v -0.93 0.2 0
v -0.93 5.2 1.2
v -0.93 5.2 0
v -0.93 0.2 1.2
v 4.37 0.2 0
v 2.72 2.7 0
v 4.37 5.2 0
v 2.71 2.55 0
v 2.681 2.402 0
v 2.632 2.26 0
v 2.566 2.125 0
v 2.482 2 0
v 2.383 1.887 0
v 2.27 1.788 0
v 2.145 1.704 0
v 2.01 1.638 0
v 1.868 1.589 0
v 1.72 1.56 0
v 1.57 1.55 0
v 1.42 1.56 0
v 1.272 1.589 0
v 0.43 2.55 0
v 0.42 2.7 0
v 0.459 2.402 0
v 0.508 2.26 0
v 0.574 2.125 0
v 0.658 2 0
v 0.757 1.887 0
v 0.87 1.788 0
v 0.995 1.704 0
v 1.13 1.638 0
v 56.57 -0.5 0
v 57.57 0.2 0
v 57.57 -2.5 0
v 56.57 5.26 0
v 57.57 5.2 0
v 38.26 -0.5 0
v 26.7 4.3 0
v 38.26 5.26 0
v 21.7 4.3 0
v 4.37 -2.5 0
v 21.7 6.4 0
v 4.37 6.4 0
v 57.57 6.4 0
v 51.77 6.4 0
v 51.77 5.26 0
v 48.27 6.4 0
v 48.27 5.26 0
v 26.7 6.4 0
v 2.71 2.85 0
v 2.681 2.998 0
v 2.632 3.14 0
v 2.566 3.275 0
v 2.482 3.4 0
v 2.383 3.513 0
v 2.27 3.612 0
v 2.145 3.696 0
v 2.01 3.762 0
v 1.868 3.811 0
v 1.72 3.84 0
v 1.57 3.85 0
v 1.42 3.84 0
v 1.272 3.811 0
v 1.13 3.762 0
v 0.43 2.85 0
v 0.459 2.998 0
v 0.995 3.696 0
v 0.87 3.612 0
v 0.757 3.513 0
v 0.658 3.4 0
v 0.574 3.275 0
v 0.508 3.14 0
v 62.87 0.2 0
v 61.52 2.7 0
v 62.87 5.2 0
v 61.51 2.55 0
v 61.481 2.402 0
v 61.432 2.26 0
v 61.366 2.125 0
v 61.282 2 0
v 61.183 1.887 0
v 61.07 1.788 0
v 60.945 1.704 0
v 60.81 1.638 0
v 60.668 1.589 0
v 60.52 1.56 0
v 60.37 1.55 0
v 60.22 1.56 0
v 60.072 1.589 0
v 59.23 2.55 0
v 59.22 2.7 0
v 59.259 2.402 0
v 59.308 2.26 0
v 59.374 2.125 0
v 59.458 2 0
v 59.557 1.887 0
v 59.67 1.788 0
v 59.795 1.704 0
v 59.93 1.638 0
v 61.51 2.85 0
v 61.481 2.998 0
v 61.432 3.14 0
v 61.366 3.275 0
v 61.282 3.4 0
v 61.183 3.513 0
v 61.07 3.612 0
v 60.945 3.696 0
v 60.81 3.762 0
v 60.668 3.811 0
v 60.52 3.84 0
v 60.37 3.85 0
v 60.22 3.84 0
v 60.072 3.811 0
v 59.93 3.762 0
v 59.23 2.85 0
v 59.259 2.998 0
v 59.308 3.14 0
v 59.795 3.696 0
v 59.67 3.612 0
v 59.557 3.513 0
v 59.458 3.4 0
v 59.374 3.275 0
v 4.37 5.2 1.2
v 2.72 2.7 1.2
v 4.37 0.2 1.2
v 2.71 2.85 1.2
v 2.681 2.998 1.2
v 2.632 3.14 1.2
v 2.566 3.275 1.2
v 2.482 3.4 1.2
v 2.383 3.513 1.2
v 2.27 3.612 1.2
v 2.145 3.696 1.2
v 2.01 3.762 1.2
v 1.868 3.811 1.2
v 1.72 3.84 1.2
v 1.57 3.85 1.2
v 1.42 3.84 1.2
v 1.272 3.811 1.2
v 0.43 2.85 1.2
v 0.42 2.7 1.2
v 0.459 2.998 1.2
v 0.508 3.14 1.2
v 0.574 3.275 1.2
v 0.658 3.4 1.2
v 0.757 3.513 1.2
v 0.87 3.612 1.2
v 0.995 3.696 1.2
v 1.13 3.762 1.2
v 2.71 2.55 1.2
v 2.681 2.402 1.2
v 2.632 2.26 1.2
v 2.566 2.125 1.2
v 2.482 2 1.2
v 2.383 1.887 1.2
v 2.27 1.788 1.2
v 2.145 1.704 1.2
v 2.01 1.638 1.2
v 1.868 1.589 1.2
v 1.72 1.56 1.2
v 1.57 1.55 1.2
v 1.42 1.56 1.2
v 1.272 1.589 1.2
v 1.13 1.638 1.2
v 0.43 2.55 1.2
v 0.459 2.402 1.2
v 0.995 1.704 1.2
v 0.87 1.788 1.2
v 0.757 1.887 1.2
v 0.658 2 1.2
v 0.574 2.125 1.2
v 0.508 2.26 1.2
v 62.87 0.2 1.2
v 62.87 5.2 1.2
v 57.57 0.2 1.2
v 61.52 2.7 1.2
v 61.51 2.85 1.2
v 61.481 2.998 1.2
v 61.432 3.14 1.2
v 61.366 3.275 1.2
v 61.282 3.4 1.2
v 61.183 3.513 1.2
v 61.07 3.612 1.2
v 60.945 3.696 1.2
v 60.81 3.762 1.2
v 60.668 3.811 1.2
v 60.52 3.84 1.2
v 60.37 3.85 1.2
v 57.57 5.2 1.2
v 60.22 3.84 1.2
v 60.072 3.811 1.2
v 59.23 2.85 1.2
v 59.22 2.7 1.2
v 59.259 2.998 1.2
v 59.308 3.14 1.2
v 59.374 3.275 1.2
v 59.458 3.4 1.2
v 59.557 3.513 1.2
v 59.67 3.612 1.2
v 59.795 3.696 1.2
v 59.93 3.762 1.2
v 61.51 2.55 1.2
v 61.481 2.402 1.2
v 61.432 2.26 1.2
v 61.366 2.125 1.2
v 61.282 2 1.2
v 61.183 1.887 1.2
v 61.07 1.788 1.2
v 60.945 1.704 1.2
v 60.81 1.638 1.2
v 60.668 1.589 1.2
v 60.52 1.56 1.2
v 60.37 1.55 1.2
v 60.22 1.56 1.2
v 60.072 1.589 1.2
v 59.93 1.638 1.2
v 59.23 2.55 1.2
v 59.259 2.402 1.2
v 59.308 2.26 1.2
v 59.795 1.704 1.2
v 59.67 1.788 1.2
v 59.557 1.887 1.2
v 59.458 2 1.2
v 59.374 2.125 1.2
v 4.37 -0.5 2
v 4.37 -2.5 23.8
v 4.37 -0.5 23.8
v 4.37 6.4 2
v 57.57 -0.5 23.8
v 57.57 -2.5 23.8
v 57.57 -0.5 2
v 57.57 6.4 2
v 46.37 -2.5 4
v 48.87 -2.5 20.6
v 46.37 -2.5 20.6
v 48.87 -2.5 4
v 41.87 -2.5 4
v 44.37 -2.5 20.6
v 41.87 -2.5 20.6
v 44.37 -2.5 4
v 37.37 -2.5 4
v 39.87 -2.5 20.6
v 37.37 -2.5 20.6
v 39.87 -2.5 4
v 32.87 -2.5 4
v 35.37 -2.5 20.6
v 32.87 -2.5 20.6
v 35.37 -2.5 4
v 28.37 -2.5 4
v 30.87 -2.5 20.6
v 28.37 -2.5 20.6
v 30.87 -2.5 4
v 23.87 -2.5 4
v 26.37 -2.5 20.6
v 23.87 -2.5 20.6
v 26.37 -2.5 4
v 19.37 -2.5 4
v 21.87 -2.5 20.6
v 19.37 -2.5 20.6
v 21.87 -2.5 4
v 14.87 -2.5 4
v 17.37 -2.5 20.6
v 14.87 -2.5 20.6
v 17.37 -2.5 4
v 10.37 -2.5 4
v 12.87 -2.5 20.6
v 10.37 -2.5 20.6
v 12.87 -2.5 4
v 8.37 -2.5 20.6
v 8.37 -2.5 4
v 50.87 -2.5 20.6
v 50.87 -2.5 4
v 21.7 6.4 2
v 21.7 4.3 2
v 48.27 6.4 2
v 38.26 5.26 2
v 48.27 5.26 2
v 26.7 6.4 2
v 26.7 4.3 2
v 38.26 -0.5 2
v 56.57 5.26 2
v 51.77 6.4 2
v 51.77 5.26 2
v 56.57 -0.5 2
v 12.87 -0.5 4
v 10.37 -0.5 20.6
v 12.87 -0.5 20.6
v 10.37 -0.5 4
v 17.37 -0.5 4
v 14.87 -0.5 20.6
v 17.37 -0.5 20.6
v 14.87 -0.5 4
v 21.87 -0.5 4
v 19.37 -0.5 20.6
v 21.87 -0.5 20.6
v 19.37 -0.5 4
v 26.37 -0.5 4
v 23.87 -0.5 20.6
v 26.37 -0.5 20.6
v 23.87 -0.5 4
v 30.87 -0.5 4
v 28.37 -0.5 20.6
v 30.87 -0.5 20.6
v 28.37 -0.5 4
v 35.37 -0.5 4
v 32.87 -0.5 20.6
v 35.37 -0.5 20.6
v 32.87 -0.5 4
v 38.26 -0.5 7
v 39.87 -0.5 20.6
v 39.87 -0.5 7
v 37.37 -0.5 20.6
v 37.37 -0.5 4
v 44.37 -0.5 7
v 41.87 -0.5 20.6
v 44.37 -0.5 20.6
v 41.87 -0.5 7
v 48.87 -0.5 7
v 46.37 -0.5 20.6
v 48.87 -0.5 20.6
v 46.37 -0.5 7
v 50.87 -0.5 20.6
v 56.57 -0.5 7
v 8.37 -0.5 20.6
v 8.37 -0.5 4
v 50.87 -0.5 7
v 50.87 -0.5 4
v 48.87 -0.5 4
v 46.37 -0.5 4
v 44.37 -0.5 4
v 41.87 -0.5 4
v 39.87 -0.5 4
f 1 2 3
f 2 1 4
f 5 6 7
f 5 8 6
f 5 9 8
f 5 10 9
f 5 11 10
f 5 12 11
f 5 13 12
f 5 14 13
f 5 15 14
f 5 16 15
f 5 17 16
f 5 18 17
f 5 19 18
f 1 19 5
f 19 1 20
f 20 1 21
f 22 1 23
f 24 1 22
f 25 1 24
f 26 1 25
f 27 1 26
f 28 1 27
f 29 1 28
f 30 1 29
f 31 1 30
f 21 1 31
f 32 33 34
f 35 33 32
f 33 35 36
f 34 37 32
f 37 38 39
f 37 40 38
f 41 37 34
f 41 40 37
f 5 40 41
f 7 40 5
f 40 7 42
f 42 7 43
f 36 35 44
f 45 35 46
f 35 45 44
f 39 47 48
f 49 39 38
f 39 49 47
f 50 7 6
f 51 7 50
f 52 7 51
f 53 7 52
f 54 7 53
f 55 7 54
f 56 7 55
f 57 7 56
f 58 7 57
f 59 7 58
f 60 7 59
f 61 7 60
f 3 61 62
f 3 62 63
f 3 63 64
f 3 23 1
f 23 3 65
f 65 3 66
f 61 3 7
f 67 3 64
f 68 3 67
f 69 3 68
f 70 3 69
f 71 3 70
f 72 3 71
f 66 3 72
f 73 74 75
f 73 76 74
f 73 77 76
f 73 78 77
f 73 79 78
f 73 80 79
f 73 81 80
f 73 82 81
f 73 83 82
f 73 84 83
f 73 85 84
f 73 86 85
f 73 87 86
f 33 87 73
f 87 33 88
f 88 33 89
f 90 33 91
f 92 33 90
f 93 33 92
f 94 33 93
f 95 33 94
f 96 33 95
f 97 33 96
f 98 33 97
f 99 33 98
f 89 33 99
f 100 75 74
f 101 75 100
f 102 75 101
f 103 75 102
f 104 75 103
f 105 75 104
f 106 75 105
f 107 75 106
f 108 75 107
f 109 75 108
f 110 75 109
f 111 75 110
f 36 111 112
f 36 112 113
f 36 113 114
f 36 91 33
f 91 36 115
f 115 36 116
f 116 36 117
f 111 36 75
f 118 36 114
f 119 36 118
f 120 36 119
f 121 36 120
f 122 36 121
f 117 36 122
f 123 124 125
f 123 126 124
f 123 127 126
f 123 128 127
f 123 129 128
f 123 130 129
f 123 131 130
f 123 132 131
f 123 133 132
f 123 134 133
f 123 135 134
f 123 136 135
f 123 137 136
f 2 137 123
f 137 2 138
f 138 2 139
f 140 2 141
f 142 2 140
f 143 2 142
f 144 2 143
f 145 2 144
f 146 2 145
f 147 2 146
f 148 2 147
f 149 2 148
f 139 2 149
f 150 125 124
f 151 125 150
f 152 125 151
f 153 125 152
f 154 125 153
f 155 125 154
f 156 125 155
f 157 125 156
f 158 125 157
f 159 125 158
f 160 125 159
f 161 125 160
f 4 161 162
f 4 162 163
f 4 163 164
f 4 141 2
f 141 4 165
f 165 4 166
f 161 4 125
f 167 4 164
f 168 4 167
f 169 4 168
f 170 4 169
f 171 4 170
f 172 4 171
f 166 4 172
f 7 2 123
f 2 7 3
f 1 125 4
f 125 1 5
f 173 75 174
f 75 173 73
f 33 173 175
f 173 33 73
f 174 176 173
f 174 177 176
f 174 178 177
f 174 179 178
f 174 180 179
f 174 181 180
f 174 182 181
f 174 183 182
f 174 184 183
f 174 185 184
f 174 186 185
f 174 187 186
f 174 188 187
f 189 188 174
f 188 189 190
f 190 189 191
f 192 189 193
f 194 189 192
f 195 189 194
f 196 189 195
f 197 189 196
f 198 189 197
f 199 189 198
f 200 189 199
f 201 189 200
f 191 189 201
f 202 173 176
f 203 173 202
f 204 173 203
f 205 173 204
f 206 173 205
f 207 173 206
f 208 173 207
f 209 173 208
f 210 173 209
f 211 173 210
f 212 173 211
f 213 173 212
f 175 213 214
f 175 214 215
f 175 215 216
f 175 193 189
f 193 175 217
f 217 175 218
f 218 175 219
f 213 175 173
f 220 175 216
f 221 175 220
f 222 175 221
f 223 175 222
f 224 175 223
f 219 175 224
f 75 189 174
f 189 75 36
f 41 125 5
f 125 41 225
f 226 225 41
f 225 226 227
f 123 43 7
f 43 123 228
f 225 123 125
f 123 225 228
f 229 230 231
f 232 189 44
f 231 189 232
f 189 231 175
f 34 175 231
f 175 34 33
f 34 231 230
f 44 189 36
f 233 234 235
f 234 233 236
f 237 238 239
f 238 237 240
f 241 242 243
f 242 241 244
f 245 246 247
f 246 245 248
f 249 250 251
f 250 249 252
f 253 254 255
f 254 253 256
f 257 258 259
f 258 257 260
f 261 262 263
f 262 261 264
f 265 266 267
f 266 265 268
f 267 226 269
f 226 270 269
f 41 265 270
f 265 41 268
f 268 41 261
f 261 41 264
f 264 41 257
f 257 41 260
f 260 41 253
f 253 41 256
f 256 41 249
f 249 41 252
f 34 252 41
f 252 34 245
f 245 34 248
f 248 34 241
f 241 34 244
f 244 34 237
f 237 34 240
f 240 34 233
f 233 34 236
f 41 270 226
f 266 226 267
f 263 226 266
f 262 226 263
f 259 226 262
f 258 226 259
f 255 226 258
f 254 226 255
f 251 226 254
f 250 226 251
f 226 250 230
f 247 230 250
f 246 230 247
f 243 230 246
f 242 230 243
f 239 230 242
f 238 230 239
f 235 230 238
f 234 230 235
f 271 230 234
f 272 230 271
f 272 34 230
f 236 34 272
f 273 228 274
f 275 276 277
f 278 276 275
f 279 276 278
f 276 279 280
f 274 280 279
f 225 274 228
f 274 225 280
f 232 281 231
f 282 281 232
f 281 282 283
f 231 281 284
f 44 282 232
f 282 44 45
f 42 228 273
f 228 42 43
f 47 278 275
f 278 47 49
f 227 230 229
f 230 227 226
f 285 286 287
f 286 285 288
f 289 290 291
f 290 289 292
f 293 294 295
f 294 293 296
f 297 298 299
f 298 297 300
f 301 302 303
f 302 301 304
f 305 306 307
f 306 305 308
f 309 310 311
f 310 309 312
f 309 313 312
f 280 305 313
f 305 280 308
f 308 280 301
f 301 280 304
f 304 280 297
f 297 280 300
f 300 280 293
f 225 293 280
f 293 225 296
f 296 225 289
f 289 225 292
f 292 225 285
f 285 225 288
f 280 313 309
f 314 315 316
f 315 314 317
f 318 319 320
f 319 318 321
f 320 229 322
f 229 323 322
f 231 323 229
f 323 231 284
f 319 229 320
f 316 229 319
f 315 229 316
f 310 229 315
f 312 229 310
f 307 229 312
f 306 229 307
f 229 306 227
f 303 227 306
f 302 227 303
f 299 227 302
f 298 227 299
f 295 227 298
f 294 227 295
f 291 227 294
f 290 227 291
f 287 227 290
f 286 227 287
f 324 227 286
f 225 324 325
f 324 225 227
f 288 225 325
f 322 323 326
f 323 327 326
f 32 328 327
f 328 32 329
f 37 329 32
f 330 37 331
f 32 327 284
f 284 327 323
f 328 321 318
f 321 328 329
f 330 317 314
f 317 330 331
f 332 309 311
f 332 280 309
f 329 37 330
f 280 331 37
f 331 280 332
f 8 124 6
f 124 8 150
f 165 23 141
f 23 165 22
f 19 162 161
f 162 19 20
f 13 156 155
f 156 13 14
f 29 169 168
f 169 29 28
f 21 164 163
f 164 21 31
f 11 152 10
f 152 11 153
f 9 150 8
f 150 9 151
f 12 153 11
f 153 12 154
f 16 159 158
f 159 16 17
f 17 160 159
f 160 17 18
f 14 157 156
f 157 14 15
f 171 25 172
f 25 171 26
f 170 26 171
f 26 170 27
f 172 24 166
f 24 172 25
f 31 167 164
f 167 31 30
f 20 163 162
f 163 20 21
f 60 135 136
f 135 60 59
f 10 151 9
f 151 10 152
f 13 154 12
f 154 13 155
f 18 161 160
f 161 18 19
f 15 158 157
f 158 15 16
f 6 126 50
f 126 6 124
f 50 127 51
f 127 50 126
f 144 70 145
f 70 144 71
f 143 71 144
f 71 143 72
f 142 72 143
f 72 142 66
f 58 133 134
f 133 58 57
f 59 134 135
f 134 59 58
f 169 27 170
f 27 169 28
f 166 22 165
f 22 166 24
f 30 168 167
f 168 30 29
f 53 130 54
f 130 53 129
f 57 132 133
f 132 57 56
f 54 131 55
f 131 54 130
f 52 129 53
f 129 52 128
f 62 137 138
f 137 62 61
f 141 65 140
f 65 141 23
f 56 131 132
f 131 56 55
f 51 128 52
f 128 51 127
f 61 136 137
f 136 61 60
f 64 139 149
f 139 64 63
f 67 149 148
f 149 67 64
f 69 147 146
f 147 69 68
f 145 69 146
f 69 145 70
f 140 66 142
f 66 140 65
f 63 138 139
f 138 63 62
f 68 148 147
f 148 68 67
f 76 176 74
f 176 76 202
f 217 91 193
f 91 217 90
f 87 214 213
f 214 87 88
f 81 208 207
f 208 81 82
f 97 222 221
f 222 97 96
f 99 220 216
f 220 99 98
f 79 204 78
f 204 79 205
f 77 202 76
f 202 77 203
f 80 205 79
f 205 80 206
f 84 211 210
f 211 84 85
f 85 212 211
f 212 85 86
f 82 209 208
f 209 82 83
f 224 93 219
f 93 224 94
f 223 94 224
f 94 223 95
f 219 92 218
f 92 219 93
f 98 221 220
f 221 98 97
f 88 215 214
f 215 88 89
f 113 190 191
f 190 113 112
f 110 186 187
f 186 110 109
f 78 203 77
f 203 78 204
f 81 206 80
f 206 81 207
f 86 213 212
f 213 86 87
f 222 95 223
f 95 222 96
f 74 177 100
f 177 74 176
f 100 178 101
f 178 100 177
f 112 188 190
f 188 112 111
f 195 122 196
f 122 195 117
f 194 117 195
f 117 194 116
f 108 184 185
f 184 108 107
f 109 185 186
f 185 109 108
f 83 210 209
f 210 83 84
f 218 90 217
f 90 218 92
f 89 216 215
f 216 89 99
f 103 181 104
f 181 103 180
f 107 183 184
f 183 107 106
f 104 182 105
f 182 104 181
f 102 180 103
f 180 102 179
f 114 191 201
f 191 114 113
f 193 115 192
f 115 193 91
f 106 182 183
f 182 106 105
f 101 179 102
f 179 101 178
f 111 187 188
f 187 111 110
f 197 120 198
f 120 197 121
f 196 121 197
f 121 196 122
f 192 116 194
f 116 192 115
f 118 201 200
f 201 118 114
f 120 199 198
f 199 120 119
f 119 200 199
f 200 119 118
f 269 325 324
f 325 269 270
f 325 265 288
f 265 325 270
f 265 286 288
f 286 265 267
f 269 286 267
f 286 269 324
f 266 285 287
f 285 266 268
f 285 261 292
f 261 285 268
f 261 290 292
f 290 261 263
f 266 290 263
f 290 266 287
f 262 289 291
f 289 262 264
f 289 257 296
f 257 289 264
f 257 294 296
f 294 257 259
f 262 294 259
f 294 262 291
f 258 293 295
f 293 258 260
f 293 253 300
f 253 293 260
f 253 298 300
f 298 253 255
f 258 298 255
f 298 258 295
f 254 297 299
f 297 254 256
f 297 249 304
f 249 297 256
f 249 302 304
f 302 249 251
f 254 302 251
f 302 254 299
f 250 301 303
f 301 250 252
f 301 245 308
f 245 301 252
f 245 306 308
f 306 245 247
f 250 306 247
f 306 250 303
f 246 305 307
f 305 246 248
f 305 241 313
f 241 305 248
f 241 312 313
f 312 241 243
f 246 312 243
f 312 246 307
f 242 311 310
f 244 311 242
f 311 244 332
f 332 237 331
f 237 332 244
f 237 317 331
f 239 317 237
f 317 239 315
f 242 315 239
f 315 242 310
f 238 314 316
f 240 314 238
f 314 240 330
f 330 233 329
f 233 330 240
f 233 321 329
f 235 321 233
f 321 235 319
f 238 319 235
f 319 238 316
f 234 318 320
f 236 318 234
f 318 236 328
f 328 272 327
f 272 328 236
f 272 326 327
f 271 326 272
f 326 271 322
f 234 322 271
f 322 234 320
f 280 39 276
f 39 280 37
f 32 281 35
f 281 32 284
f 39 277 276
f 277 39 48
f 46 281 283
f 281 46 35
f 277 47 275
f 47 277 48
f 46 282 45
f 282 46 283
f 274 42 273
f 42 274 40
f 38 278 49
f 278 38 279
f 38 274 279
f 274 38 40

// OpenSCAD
// =============================================================================
//  Заглушка проёма гребёнки GPIO для корпусов case_30 / case_40
// =============================================================================
//  Закрывает задний проём крышки (сверху и сзади). Держится двумя саморезами
//  M2×6 через «ушки» в карманах верха крышки. Подходит к обеим крышкам.
//  Окно в верху пропускает Dupont-провода на пины 1…GC_CABLE_PINS (UART 6/8/10,
//  вентилятор 4/6, ШИМ 7). Без проводов: GC_CABLE = false — глухая заглушка.
//  PART: "print" — для печати (верхом на стол); "assembly" — на корпусе.
//  Экспорт:
//    openscad -o stl/gpio_cover.stl       -D 'PART="print"' gpio_cover.scad
//    openscad -o stl/gpio_cover_solid.stl -D 'PART="print"' -D 'GC_CABLE=false' gpio_cover.scad
// =============================================================================
include <opi4_board.scad>
include <opi4_case_lib.scad>
OPI4_STANDALONE = false;

PART = "print";     // [print, assembly]

$fn = 48;
if (PART == "print") opi4_case("gpio_cover", 40, SOC_X, SOC_Y - 4.5);
else opi4_case("assembly", 40, SOC_X, SOC_Y - 4.5);
